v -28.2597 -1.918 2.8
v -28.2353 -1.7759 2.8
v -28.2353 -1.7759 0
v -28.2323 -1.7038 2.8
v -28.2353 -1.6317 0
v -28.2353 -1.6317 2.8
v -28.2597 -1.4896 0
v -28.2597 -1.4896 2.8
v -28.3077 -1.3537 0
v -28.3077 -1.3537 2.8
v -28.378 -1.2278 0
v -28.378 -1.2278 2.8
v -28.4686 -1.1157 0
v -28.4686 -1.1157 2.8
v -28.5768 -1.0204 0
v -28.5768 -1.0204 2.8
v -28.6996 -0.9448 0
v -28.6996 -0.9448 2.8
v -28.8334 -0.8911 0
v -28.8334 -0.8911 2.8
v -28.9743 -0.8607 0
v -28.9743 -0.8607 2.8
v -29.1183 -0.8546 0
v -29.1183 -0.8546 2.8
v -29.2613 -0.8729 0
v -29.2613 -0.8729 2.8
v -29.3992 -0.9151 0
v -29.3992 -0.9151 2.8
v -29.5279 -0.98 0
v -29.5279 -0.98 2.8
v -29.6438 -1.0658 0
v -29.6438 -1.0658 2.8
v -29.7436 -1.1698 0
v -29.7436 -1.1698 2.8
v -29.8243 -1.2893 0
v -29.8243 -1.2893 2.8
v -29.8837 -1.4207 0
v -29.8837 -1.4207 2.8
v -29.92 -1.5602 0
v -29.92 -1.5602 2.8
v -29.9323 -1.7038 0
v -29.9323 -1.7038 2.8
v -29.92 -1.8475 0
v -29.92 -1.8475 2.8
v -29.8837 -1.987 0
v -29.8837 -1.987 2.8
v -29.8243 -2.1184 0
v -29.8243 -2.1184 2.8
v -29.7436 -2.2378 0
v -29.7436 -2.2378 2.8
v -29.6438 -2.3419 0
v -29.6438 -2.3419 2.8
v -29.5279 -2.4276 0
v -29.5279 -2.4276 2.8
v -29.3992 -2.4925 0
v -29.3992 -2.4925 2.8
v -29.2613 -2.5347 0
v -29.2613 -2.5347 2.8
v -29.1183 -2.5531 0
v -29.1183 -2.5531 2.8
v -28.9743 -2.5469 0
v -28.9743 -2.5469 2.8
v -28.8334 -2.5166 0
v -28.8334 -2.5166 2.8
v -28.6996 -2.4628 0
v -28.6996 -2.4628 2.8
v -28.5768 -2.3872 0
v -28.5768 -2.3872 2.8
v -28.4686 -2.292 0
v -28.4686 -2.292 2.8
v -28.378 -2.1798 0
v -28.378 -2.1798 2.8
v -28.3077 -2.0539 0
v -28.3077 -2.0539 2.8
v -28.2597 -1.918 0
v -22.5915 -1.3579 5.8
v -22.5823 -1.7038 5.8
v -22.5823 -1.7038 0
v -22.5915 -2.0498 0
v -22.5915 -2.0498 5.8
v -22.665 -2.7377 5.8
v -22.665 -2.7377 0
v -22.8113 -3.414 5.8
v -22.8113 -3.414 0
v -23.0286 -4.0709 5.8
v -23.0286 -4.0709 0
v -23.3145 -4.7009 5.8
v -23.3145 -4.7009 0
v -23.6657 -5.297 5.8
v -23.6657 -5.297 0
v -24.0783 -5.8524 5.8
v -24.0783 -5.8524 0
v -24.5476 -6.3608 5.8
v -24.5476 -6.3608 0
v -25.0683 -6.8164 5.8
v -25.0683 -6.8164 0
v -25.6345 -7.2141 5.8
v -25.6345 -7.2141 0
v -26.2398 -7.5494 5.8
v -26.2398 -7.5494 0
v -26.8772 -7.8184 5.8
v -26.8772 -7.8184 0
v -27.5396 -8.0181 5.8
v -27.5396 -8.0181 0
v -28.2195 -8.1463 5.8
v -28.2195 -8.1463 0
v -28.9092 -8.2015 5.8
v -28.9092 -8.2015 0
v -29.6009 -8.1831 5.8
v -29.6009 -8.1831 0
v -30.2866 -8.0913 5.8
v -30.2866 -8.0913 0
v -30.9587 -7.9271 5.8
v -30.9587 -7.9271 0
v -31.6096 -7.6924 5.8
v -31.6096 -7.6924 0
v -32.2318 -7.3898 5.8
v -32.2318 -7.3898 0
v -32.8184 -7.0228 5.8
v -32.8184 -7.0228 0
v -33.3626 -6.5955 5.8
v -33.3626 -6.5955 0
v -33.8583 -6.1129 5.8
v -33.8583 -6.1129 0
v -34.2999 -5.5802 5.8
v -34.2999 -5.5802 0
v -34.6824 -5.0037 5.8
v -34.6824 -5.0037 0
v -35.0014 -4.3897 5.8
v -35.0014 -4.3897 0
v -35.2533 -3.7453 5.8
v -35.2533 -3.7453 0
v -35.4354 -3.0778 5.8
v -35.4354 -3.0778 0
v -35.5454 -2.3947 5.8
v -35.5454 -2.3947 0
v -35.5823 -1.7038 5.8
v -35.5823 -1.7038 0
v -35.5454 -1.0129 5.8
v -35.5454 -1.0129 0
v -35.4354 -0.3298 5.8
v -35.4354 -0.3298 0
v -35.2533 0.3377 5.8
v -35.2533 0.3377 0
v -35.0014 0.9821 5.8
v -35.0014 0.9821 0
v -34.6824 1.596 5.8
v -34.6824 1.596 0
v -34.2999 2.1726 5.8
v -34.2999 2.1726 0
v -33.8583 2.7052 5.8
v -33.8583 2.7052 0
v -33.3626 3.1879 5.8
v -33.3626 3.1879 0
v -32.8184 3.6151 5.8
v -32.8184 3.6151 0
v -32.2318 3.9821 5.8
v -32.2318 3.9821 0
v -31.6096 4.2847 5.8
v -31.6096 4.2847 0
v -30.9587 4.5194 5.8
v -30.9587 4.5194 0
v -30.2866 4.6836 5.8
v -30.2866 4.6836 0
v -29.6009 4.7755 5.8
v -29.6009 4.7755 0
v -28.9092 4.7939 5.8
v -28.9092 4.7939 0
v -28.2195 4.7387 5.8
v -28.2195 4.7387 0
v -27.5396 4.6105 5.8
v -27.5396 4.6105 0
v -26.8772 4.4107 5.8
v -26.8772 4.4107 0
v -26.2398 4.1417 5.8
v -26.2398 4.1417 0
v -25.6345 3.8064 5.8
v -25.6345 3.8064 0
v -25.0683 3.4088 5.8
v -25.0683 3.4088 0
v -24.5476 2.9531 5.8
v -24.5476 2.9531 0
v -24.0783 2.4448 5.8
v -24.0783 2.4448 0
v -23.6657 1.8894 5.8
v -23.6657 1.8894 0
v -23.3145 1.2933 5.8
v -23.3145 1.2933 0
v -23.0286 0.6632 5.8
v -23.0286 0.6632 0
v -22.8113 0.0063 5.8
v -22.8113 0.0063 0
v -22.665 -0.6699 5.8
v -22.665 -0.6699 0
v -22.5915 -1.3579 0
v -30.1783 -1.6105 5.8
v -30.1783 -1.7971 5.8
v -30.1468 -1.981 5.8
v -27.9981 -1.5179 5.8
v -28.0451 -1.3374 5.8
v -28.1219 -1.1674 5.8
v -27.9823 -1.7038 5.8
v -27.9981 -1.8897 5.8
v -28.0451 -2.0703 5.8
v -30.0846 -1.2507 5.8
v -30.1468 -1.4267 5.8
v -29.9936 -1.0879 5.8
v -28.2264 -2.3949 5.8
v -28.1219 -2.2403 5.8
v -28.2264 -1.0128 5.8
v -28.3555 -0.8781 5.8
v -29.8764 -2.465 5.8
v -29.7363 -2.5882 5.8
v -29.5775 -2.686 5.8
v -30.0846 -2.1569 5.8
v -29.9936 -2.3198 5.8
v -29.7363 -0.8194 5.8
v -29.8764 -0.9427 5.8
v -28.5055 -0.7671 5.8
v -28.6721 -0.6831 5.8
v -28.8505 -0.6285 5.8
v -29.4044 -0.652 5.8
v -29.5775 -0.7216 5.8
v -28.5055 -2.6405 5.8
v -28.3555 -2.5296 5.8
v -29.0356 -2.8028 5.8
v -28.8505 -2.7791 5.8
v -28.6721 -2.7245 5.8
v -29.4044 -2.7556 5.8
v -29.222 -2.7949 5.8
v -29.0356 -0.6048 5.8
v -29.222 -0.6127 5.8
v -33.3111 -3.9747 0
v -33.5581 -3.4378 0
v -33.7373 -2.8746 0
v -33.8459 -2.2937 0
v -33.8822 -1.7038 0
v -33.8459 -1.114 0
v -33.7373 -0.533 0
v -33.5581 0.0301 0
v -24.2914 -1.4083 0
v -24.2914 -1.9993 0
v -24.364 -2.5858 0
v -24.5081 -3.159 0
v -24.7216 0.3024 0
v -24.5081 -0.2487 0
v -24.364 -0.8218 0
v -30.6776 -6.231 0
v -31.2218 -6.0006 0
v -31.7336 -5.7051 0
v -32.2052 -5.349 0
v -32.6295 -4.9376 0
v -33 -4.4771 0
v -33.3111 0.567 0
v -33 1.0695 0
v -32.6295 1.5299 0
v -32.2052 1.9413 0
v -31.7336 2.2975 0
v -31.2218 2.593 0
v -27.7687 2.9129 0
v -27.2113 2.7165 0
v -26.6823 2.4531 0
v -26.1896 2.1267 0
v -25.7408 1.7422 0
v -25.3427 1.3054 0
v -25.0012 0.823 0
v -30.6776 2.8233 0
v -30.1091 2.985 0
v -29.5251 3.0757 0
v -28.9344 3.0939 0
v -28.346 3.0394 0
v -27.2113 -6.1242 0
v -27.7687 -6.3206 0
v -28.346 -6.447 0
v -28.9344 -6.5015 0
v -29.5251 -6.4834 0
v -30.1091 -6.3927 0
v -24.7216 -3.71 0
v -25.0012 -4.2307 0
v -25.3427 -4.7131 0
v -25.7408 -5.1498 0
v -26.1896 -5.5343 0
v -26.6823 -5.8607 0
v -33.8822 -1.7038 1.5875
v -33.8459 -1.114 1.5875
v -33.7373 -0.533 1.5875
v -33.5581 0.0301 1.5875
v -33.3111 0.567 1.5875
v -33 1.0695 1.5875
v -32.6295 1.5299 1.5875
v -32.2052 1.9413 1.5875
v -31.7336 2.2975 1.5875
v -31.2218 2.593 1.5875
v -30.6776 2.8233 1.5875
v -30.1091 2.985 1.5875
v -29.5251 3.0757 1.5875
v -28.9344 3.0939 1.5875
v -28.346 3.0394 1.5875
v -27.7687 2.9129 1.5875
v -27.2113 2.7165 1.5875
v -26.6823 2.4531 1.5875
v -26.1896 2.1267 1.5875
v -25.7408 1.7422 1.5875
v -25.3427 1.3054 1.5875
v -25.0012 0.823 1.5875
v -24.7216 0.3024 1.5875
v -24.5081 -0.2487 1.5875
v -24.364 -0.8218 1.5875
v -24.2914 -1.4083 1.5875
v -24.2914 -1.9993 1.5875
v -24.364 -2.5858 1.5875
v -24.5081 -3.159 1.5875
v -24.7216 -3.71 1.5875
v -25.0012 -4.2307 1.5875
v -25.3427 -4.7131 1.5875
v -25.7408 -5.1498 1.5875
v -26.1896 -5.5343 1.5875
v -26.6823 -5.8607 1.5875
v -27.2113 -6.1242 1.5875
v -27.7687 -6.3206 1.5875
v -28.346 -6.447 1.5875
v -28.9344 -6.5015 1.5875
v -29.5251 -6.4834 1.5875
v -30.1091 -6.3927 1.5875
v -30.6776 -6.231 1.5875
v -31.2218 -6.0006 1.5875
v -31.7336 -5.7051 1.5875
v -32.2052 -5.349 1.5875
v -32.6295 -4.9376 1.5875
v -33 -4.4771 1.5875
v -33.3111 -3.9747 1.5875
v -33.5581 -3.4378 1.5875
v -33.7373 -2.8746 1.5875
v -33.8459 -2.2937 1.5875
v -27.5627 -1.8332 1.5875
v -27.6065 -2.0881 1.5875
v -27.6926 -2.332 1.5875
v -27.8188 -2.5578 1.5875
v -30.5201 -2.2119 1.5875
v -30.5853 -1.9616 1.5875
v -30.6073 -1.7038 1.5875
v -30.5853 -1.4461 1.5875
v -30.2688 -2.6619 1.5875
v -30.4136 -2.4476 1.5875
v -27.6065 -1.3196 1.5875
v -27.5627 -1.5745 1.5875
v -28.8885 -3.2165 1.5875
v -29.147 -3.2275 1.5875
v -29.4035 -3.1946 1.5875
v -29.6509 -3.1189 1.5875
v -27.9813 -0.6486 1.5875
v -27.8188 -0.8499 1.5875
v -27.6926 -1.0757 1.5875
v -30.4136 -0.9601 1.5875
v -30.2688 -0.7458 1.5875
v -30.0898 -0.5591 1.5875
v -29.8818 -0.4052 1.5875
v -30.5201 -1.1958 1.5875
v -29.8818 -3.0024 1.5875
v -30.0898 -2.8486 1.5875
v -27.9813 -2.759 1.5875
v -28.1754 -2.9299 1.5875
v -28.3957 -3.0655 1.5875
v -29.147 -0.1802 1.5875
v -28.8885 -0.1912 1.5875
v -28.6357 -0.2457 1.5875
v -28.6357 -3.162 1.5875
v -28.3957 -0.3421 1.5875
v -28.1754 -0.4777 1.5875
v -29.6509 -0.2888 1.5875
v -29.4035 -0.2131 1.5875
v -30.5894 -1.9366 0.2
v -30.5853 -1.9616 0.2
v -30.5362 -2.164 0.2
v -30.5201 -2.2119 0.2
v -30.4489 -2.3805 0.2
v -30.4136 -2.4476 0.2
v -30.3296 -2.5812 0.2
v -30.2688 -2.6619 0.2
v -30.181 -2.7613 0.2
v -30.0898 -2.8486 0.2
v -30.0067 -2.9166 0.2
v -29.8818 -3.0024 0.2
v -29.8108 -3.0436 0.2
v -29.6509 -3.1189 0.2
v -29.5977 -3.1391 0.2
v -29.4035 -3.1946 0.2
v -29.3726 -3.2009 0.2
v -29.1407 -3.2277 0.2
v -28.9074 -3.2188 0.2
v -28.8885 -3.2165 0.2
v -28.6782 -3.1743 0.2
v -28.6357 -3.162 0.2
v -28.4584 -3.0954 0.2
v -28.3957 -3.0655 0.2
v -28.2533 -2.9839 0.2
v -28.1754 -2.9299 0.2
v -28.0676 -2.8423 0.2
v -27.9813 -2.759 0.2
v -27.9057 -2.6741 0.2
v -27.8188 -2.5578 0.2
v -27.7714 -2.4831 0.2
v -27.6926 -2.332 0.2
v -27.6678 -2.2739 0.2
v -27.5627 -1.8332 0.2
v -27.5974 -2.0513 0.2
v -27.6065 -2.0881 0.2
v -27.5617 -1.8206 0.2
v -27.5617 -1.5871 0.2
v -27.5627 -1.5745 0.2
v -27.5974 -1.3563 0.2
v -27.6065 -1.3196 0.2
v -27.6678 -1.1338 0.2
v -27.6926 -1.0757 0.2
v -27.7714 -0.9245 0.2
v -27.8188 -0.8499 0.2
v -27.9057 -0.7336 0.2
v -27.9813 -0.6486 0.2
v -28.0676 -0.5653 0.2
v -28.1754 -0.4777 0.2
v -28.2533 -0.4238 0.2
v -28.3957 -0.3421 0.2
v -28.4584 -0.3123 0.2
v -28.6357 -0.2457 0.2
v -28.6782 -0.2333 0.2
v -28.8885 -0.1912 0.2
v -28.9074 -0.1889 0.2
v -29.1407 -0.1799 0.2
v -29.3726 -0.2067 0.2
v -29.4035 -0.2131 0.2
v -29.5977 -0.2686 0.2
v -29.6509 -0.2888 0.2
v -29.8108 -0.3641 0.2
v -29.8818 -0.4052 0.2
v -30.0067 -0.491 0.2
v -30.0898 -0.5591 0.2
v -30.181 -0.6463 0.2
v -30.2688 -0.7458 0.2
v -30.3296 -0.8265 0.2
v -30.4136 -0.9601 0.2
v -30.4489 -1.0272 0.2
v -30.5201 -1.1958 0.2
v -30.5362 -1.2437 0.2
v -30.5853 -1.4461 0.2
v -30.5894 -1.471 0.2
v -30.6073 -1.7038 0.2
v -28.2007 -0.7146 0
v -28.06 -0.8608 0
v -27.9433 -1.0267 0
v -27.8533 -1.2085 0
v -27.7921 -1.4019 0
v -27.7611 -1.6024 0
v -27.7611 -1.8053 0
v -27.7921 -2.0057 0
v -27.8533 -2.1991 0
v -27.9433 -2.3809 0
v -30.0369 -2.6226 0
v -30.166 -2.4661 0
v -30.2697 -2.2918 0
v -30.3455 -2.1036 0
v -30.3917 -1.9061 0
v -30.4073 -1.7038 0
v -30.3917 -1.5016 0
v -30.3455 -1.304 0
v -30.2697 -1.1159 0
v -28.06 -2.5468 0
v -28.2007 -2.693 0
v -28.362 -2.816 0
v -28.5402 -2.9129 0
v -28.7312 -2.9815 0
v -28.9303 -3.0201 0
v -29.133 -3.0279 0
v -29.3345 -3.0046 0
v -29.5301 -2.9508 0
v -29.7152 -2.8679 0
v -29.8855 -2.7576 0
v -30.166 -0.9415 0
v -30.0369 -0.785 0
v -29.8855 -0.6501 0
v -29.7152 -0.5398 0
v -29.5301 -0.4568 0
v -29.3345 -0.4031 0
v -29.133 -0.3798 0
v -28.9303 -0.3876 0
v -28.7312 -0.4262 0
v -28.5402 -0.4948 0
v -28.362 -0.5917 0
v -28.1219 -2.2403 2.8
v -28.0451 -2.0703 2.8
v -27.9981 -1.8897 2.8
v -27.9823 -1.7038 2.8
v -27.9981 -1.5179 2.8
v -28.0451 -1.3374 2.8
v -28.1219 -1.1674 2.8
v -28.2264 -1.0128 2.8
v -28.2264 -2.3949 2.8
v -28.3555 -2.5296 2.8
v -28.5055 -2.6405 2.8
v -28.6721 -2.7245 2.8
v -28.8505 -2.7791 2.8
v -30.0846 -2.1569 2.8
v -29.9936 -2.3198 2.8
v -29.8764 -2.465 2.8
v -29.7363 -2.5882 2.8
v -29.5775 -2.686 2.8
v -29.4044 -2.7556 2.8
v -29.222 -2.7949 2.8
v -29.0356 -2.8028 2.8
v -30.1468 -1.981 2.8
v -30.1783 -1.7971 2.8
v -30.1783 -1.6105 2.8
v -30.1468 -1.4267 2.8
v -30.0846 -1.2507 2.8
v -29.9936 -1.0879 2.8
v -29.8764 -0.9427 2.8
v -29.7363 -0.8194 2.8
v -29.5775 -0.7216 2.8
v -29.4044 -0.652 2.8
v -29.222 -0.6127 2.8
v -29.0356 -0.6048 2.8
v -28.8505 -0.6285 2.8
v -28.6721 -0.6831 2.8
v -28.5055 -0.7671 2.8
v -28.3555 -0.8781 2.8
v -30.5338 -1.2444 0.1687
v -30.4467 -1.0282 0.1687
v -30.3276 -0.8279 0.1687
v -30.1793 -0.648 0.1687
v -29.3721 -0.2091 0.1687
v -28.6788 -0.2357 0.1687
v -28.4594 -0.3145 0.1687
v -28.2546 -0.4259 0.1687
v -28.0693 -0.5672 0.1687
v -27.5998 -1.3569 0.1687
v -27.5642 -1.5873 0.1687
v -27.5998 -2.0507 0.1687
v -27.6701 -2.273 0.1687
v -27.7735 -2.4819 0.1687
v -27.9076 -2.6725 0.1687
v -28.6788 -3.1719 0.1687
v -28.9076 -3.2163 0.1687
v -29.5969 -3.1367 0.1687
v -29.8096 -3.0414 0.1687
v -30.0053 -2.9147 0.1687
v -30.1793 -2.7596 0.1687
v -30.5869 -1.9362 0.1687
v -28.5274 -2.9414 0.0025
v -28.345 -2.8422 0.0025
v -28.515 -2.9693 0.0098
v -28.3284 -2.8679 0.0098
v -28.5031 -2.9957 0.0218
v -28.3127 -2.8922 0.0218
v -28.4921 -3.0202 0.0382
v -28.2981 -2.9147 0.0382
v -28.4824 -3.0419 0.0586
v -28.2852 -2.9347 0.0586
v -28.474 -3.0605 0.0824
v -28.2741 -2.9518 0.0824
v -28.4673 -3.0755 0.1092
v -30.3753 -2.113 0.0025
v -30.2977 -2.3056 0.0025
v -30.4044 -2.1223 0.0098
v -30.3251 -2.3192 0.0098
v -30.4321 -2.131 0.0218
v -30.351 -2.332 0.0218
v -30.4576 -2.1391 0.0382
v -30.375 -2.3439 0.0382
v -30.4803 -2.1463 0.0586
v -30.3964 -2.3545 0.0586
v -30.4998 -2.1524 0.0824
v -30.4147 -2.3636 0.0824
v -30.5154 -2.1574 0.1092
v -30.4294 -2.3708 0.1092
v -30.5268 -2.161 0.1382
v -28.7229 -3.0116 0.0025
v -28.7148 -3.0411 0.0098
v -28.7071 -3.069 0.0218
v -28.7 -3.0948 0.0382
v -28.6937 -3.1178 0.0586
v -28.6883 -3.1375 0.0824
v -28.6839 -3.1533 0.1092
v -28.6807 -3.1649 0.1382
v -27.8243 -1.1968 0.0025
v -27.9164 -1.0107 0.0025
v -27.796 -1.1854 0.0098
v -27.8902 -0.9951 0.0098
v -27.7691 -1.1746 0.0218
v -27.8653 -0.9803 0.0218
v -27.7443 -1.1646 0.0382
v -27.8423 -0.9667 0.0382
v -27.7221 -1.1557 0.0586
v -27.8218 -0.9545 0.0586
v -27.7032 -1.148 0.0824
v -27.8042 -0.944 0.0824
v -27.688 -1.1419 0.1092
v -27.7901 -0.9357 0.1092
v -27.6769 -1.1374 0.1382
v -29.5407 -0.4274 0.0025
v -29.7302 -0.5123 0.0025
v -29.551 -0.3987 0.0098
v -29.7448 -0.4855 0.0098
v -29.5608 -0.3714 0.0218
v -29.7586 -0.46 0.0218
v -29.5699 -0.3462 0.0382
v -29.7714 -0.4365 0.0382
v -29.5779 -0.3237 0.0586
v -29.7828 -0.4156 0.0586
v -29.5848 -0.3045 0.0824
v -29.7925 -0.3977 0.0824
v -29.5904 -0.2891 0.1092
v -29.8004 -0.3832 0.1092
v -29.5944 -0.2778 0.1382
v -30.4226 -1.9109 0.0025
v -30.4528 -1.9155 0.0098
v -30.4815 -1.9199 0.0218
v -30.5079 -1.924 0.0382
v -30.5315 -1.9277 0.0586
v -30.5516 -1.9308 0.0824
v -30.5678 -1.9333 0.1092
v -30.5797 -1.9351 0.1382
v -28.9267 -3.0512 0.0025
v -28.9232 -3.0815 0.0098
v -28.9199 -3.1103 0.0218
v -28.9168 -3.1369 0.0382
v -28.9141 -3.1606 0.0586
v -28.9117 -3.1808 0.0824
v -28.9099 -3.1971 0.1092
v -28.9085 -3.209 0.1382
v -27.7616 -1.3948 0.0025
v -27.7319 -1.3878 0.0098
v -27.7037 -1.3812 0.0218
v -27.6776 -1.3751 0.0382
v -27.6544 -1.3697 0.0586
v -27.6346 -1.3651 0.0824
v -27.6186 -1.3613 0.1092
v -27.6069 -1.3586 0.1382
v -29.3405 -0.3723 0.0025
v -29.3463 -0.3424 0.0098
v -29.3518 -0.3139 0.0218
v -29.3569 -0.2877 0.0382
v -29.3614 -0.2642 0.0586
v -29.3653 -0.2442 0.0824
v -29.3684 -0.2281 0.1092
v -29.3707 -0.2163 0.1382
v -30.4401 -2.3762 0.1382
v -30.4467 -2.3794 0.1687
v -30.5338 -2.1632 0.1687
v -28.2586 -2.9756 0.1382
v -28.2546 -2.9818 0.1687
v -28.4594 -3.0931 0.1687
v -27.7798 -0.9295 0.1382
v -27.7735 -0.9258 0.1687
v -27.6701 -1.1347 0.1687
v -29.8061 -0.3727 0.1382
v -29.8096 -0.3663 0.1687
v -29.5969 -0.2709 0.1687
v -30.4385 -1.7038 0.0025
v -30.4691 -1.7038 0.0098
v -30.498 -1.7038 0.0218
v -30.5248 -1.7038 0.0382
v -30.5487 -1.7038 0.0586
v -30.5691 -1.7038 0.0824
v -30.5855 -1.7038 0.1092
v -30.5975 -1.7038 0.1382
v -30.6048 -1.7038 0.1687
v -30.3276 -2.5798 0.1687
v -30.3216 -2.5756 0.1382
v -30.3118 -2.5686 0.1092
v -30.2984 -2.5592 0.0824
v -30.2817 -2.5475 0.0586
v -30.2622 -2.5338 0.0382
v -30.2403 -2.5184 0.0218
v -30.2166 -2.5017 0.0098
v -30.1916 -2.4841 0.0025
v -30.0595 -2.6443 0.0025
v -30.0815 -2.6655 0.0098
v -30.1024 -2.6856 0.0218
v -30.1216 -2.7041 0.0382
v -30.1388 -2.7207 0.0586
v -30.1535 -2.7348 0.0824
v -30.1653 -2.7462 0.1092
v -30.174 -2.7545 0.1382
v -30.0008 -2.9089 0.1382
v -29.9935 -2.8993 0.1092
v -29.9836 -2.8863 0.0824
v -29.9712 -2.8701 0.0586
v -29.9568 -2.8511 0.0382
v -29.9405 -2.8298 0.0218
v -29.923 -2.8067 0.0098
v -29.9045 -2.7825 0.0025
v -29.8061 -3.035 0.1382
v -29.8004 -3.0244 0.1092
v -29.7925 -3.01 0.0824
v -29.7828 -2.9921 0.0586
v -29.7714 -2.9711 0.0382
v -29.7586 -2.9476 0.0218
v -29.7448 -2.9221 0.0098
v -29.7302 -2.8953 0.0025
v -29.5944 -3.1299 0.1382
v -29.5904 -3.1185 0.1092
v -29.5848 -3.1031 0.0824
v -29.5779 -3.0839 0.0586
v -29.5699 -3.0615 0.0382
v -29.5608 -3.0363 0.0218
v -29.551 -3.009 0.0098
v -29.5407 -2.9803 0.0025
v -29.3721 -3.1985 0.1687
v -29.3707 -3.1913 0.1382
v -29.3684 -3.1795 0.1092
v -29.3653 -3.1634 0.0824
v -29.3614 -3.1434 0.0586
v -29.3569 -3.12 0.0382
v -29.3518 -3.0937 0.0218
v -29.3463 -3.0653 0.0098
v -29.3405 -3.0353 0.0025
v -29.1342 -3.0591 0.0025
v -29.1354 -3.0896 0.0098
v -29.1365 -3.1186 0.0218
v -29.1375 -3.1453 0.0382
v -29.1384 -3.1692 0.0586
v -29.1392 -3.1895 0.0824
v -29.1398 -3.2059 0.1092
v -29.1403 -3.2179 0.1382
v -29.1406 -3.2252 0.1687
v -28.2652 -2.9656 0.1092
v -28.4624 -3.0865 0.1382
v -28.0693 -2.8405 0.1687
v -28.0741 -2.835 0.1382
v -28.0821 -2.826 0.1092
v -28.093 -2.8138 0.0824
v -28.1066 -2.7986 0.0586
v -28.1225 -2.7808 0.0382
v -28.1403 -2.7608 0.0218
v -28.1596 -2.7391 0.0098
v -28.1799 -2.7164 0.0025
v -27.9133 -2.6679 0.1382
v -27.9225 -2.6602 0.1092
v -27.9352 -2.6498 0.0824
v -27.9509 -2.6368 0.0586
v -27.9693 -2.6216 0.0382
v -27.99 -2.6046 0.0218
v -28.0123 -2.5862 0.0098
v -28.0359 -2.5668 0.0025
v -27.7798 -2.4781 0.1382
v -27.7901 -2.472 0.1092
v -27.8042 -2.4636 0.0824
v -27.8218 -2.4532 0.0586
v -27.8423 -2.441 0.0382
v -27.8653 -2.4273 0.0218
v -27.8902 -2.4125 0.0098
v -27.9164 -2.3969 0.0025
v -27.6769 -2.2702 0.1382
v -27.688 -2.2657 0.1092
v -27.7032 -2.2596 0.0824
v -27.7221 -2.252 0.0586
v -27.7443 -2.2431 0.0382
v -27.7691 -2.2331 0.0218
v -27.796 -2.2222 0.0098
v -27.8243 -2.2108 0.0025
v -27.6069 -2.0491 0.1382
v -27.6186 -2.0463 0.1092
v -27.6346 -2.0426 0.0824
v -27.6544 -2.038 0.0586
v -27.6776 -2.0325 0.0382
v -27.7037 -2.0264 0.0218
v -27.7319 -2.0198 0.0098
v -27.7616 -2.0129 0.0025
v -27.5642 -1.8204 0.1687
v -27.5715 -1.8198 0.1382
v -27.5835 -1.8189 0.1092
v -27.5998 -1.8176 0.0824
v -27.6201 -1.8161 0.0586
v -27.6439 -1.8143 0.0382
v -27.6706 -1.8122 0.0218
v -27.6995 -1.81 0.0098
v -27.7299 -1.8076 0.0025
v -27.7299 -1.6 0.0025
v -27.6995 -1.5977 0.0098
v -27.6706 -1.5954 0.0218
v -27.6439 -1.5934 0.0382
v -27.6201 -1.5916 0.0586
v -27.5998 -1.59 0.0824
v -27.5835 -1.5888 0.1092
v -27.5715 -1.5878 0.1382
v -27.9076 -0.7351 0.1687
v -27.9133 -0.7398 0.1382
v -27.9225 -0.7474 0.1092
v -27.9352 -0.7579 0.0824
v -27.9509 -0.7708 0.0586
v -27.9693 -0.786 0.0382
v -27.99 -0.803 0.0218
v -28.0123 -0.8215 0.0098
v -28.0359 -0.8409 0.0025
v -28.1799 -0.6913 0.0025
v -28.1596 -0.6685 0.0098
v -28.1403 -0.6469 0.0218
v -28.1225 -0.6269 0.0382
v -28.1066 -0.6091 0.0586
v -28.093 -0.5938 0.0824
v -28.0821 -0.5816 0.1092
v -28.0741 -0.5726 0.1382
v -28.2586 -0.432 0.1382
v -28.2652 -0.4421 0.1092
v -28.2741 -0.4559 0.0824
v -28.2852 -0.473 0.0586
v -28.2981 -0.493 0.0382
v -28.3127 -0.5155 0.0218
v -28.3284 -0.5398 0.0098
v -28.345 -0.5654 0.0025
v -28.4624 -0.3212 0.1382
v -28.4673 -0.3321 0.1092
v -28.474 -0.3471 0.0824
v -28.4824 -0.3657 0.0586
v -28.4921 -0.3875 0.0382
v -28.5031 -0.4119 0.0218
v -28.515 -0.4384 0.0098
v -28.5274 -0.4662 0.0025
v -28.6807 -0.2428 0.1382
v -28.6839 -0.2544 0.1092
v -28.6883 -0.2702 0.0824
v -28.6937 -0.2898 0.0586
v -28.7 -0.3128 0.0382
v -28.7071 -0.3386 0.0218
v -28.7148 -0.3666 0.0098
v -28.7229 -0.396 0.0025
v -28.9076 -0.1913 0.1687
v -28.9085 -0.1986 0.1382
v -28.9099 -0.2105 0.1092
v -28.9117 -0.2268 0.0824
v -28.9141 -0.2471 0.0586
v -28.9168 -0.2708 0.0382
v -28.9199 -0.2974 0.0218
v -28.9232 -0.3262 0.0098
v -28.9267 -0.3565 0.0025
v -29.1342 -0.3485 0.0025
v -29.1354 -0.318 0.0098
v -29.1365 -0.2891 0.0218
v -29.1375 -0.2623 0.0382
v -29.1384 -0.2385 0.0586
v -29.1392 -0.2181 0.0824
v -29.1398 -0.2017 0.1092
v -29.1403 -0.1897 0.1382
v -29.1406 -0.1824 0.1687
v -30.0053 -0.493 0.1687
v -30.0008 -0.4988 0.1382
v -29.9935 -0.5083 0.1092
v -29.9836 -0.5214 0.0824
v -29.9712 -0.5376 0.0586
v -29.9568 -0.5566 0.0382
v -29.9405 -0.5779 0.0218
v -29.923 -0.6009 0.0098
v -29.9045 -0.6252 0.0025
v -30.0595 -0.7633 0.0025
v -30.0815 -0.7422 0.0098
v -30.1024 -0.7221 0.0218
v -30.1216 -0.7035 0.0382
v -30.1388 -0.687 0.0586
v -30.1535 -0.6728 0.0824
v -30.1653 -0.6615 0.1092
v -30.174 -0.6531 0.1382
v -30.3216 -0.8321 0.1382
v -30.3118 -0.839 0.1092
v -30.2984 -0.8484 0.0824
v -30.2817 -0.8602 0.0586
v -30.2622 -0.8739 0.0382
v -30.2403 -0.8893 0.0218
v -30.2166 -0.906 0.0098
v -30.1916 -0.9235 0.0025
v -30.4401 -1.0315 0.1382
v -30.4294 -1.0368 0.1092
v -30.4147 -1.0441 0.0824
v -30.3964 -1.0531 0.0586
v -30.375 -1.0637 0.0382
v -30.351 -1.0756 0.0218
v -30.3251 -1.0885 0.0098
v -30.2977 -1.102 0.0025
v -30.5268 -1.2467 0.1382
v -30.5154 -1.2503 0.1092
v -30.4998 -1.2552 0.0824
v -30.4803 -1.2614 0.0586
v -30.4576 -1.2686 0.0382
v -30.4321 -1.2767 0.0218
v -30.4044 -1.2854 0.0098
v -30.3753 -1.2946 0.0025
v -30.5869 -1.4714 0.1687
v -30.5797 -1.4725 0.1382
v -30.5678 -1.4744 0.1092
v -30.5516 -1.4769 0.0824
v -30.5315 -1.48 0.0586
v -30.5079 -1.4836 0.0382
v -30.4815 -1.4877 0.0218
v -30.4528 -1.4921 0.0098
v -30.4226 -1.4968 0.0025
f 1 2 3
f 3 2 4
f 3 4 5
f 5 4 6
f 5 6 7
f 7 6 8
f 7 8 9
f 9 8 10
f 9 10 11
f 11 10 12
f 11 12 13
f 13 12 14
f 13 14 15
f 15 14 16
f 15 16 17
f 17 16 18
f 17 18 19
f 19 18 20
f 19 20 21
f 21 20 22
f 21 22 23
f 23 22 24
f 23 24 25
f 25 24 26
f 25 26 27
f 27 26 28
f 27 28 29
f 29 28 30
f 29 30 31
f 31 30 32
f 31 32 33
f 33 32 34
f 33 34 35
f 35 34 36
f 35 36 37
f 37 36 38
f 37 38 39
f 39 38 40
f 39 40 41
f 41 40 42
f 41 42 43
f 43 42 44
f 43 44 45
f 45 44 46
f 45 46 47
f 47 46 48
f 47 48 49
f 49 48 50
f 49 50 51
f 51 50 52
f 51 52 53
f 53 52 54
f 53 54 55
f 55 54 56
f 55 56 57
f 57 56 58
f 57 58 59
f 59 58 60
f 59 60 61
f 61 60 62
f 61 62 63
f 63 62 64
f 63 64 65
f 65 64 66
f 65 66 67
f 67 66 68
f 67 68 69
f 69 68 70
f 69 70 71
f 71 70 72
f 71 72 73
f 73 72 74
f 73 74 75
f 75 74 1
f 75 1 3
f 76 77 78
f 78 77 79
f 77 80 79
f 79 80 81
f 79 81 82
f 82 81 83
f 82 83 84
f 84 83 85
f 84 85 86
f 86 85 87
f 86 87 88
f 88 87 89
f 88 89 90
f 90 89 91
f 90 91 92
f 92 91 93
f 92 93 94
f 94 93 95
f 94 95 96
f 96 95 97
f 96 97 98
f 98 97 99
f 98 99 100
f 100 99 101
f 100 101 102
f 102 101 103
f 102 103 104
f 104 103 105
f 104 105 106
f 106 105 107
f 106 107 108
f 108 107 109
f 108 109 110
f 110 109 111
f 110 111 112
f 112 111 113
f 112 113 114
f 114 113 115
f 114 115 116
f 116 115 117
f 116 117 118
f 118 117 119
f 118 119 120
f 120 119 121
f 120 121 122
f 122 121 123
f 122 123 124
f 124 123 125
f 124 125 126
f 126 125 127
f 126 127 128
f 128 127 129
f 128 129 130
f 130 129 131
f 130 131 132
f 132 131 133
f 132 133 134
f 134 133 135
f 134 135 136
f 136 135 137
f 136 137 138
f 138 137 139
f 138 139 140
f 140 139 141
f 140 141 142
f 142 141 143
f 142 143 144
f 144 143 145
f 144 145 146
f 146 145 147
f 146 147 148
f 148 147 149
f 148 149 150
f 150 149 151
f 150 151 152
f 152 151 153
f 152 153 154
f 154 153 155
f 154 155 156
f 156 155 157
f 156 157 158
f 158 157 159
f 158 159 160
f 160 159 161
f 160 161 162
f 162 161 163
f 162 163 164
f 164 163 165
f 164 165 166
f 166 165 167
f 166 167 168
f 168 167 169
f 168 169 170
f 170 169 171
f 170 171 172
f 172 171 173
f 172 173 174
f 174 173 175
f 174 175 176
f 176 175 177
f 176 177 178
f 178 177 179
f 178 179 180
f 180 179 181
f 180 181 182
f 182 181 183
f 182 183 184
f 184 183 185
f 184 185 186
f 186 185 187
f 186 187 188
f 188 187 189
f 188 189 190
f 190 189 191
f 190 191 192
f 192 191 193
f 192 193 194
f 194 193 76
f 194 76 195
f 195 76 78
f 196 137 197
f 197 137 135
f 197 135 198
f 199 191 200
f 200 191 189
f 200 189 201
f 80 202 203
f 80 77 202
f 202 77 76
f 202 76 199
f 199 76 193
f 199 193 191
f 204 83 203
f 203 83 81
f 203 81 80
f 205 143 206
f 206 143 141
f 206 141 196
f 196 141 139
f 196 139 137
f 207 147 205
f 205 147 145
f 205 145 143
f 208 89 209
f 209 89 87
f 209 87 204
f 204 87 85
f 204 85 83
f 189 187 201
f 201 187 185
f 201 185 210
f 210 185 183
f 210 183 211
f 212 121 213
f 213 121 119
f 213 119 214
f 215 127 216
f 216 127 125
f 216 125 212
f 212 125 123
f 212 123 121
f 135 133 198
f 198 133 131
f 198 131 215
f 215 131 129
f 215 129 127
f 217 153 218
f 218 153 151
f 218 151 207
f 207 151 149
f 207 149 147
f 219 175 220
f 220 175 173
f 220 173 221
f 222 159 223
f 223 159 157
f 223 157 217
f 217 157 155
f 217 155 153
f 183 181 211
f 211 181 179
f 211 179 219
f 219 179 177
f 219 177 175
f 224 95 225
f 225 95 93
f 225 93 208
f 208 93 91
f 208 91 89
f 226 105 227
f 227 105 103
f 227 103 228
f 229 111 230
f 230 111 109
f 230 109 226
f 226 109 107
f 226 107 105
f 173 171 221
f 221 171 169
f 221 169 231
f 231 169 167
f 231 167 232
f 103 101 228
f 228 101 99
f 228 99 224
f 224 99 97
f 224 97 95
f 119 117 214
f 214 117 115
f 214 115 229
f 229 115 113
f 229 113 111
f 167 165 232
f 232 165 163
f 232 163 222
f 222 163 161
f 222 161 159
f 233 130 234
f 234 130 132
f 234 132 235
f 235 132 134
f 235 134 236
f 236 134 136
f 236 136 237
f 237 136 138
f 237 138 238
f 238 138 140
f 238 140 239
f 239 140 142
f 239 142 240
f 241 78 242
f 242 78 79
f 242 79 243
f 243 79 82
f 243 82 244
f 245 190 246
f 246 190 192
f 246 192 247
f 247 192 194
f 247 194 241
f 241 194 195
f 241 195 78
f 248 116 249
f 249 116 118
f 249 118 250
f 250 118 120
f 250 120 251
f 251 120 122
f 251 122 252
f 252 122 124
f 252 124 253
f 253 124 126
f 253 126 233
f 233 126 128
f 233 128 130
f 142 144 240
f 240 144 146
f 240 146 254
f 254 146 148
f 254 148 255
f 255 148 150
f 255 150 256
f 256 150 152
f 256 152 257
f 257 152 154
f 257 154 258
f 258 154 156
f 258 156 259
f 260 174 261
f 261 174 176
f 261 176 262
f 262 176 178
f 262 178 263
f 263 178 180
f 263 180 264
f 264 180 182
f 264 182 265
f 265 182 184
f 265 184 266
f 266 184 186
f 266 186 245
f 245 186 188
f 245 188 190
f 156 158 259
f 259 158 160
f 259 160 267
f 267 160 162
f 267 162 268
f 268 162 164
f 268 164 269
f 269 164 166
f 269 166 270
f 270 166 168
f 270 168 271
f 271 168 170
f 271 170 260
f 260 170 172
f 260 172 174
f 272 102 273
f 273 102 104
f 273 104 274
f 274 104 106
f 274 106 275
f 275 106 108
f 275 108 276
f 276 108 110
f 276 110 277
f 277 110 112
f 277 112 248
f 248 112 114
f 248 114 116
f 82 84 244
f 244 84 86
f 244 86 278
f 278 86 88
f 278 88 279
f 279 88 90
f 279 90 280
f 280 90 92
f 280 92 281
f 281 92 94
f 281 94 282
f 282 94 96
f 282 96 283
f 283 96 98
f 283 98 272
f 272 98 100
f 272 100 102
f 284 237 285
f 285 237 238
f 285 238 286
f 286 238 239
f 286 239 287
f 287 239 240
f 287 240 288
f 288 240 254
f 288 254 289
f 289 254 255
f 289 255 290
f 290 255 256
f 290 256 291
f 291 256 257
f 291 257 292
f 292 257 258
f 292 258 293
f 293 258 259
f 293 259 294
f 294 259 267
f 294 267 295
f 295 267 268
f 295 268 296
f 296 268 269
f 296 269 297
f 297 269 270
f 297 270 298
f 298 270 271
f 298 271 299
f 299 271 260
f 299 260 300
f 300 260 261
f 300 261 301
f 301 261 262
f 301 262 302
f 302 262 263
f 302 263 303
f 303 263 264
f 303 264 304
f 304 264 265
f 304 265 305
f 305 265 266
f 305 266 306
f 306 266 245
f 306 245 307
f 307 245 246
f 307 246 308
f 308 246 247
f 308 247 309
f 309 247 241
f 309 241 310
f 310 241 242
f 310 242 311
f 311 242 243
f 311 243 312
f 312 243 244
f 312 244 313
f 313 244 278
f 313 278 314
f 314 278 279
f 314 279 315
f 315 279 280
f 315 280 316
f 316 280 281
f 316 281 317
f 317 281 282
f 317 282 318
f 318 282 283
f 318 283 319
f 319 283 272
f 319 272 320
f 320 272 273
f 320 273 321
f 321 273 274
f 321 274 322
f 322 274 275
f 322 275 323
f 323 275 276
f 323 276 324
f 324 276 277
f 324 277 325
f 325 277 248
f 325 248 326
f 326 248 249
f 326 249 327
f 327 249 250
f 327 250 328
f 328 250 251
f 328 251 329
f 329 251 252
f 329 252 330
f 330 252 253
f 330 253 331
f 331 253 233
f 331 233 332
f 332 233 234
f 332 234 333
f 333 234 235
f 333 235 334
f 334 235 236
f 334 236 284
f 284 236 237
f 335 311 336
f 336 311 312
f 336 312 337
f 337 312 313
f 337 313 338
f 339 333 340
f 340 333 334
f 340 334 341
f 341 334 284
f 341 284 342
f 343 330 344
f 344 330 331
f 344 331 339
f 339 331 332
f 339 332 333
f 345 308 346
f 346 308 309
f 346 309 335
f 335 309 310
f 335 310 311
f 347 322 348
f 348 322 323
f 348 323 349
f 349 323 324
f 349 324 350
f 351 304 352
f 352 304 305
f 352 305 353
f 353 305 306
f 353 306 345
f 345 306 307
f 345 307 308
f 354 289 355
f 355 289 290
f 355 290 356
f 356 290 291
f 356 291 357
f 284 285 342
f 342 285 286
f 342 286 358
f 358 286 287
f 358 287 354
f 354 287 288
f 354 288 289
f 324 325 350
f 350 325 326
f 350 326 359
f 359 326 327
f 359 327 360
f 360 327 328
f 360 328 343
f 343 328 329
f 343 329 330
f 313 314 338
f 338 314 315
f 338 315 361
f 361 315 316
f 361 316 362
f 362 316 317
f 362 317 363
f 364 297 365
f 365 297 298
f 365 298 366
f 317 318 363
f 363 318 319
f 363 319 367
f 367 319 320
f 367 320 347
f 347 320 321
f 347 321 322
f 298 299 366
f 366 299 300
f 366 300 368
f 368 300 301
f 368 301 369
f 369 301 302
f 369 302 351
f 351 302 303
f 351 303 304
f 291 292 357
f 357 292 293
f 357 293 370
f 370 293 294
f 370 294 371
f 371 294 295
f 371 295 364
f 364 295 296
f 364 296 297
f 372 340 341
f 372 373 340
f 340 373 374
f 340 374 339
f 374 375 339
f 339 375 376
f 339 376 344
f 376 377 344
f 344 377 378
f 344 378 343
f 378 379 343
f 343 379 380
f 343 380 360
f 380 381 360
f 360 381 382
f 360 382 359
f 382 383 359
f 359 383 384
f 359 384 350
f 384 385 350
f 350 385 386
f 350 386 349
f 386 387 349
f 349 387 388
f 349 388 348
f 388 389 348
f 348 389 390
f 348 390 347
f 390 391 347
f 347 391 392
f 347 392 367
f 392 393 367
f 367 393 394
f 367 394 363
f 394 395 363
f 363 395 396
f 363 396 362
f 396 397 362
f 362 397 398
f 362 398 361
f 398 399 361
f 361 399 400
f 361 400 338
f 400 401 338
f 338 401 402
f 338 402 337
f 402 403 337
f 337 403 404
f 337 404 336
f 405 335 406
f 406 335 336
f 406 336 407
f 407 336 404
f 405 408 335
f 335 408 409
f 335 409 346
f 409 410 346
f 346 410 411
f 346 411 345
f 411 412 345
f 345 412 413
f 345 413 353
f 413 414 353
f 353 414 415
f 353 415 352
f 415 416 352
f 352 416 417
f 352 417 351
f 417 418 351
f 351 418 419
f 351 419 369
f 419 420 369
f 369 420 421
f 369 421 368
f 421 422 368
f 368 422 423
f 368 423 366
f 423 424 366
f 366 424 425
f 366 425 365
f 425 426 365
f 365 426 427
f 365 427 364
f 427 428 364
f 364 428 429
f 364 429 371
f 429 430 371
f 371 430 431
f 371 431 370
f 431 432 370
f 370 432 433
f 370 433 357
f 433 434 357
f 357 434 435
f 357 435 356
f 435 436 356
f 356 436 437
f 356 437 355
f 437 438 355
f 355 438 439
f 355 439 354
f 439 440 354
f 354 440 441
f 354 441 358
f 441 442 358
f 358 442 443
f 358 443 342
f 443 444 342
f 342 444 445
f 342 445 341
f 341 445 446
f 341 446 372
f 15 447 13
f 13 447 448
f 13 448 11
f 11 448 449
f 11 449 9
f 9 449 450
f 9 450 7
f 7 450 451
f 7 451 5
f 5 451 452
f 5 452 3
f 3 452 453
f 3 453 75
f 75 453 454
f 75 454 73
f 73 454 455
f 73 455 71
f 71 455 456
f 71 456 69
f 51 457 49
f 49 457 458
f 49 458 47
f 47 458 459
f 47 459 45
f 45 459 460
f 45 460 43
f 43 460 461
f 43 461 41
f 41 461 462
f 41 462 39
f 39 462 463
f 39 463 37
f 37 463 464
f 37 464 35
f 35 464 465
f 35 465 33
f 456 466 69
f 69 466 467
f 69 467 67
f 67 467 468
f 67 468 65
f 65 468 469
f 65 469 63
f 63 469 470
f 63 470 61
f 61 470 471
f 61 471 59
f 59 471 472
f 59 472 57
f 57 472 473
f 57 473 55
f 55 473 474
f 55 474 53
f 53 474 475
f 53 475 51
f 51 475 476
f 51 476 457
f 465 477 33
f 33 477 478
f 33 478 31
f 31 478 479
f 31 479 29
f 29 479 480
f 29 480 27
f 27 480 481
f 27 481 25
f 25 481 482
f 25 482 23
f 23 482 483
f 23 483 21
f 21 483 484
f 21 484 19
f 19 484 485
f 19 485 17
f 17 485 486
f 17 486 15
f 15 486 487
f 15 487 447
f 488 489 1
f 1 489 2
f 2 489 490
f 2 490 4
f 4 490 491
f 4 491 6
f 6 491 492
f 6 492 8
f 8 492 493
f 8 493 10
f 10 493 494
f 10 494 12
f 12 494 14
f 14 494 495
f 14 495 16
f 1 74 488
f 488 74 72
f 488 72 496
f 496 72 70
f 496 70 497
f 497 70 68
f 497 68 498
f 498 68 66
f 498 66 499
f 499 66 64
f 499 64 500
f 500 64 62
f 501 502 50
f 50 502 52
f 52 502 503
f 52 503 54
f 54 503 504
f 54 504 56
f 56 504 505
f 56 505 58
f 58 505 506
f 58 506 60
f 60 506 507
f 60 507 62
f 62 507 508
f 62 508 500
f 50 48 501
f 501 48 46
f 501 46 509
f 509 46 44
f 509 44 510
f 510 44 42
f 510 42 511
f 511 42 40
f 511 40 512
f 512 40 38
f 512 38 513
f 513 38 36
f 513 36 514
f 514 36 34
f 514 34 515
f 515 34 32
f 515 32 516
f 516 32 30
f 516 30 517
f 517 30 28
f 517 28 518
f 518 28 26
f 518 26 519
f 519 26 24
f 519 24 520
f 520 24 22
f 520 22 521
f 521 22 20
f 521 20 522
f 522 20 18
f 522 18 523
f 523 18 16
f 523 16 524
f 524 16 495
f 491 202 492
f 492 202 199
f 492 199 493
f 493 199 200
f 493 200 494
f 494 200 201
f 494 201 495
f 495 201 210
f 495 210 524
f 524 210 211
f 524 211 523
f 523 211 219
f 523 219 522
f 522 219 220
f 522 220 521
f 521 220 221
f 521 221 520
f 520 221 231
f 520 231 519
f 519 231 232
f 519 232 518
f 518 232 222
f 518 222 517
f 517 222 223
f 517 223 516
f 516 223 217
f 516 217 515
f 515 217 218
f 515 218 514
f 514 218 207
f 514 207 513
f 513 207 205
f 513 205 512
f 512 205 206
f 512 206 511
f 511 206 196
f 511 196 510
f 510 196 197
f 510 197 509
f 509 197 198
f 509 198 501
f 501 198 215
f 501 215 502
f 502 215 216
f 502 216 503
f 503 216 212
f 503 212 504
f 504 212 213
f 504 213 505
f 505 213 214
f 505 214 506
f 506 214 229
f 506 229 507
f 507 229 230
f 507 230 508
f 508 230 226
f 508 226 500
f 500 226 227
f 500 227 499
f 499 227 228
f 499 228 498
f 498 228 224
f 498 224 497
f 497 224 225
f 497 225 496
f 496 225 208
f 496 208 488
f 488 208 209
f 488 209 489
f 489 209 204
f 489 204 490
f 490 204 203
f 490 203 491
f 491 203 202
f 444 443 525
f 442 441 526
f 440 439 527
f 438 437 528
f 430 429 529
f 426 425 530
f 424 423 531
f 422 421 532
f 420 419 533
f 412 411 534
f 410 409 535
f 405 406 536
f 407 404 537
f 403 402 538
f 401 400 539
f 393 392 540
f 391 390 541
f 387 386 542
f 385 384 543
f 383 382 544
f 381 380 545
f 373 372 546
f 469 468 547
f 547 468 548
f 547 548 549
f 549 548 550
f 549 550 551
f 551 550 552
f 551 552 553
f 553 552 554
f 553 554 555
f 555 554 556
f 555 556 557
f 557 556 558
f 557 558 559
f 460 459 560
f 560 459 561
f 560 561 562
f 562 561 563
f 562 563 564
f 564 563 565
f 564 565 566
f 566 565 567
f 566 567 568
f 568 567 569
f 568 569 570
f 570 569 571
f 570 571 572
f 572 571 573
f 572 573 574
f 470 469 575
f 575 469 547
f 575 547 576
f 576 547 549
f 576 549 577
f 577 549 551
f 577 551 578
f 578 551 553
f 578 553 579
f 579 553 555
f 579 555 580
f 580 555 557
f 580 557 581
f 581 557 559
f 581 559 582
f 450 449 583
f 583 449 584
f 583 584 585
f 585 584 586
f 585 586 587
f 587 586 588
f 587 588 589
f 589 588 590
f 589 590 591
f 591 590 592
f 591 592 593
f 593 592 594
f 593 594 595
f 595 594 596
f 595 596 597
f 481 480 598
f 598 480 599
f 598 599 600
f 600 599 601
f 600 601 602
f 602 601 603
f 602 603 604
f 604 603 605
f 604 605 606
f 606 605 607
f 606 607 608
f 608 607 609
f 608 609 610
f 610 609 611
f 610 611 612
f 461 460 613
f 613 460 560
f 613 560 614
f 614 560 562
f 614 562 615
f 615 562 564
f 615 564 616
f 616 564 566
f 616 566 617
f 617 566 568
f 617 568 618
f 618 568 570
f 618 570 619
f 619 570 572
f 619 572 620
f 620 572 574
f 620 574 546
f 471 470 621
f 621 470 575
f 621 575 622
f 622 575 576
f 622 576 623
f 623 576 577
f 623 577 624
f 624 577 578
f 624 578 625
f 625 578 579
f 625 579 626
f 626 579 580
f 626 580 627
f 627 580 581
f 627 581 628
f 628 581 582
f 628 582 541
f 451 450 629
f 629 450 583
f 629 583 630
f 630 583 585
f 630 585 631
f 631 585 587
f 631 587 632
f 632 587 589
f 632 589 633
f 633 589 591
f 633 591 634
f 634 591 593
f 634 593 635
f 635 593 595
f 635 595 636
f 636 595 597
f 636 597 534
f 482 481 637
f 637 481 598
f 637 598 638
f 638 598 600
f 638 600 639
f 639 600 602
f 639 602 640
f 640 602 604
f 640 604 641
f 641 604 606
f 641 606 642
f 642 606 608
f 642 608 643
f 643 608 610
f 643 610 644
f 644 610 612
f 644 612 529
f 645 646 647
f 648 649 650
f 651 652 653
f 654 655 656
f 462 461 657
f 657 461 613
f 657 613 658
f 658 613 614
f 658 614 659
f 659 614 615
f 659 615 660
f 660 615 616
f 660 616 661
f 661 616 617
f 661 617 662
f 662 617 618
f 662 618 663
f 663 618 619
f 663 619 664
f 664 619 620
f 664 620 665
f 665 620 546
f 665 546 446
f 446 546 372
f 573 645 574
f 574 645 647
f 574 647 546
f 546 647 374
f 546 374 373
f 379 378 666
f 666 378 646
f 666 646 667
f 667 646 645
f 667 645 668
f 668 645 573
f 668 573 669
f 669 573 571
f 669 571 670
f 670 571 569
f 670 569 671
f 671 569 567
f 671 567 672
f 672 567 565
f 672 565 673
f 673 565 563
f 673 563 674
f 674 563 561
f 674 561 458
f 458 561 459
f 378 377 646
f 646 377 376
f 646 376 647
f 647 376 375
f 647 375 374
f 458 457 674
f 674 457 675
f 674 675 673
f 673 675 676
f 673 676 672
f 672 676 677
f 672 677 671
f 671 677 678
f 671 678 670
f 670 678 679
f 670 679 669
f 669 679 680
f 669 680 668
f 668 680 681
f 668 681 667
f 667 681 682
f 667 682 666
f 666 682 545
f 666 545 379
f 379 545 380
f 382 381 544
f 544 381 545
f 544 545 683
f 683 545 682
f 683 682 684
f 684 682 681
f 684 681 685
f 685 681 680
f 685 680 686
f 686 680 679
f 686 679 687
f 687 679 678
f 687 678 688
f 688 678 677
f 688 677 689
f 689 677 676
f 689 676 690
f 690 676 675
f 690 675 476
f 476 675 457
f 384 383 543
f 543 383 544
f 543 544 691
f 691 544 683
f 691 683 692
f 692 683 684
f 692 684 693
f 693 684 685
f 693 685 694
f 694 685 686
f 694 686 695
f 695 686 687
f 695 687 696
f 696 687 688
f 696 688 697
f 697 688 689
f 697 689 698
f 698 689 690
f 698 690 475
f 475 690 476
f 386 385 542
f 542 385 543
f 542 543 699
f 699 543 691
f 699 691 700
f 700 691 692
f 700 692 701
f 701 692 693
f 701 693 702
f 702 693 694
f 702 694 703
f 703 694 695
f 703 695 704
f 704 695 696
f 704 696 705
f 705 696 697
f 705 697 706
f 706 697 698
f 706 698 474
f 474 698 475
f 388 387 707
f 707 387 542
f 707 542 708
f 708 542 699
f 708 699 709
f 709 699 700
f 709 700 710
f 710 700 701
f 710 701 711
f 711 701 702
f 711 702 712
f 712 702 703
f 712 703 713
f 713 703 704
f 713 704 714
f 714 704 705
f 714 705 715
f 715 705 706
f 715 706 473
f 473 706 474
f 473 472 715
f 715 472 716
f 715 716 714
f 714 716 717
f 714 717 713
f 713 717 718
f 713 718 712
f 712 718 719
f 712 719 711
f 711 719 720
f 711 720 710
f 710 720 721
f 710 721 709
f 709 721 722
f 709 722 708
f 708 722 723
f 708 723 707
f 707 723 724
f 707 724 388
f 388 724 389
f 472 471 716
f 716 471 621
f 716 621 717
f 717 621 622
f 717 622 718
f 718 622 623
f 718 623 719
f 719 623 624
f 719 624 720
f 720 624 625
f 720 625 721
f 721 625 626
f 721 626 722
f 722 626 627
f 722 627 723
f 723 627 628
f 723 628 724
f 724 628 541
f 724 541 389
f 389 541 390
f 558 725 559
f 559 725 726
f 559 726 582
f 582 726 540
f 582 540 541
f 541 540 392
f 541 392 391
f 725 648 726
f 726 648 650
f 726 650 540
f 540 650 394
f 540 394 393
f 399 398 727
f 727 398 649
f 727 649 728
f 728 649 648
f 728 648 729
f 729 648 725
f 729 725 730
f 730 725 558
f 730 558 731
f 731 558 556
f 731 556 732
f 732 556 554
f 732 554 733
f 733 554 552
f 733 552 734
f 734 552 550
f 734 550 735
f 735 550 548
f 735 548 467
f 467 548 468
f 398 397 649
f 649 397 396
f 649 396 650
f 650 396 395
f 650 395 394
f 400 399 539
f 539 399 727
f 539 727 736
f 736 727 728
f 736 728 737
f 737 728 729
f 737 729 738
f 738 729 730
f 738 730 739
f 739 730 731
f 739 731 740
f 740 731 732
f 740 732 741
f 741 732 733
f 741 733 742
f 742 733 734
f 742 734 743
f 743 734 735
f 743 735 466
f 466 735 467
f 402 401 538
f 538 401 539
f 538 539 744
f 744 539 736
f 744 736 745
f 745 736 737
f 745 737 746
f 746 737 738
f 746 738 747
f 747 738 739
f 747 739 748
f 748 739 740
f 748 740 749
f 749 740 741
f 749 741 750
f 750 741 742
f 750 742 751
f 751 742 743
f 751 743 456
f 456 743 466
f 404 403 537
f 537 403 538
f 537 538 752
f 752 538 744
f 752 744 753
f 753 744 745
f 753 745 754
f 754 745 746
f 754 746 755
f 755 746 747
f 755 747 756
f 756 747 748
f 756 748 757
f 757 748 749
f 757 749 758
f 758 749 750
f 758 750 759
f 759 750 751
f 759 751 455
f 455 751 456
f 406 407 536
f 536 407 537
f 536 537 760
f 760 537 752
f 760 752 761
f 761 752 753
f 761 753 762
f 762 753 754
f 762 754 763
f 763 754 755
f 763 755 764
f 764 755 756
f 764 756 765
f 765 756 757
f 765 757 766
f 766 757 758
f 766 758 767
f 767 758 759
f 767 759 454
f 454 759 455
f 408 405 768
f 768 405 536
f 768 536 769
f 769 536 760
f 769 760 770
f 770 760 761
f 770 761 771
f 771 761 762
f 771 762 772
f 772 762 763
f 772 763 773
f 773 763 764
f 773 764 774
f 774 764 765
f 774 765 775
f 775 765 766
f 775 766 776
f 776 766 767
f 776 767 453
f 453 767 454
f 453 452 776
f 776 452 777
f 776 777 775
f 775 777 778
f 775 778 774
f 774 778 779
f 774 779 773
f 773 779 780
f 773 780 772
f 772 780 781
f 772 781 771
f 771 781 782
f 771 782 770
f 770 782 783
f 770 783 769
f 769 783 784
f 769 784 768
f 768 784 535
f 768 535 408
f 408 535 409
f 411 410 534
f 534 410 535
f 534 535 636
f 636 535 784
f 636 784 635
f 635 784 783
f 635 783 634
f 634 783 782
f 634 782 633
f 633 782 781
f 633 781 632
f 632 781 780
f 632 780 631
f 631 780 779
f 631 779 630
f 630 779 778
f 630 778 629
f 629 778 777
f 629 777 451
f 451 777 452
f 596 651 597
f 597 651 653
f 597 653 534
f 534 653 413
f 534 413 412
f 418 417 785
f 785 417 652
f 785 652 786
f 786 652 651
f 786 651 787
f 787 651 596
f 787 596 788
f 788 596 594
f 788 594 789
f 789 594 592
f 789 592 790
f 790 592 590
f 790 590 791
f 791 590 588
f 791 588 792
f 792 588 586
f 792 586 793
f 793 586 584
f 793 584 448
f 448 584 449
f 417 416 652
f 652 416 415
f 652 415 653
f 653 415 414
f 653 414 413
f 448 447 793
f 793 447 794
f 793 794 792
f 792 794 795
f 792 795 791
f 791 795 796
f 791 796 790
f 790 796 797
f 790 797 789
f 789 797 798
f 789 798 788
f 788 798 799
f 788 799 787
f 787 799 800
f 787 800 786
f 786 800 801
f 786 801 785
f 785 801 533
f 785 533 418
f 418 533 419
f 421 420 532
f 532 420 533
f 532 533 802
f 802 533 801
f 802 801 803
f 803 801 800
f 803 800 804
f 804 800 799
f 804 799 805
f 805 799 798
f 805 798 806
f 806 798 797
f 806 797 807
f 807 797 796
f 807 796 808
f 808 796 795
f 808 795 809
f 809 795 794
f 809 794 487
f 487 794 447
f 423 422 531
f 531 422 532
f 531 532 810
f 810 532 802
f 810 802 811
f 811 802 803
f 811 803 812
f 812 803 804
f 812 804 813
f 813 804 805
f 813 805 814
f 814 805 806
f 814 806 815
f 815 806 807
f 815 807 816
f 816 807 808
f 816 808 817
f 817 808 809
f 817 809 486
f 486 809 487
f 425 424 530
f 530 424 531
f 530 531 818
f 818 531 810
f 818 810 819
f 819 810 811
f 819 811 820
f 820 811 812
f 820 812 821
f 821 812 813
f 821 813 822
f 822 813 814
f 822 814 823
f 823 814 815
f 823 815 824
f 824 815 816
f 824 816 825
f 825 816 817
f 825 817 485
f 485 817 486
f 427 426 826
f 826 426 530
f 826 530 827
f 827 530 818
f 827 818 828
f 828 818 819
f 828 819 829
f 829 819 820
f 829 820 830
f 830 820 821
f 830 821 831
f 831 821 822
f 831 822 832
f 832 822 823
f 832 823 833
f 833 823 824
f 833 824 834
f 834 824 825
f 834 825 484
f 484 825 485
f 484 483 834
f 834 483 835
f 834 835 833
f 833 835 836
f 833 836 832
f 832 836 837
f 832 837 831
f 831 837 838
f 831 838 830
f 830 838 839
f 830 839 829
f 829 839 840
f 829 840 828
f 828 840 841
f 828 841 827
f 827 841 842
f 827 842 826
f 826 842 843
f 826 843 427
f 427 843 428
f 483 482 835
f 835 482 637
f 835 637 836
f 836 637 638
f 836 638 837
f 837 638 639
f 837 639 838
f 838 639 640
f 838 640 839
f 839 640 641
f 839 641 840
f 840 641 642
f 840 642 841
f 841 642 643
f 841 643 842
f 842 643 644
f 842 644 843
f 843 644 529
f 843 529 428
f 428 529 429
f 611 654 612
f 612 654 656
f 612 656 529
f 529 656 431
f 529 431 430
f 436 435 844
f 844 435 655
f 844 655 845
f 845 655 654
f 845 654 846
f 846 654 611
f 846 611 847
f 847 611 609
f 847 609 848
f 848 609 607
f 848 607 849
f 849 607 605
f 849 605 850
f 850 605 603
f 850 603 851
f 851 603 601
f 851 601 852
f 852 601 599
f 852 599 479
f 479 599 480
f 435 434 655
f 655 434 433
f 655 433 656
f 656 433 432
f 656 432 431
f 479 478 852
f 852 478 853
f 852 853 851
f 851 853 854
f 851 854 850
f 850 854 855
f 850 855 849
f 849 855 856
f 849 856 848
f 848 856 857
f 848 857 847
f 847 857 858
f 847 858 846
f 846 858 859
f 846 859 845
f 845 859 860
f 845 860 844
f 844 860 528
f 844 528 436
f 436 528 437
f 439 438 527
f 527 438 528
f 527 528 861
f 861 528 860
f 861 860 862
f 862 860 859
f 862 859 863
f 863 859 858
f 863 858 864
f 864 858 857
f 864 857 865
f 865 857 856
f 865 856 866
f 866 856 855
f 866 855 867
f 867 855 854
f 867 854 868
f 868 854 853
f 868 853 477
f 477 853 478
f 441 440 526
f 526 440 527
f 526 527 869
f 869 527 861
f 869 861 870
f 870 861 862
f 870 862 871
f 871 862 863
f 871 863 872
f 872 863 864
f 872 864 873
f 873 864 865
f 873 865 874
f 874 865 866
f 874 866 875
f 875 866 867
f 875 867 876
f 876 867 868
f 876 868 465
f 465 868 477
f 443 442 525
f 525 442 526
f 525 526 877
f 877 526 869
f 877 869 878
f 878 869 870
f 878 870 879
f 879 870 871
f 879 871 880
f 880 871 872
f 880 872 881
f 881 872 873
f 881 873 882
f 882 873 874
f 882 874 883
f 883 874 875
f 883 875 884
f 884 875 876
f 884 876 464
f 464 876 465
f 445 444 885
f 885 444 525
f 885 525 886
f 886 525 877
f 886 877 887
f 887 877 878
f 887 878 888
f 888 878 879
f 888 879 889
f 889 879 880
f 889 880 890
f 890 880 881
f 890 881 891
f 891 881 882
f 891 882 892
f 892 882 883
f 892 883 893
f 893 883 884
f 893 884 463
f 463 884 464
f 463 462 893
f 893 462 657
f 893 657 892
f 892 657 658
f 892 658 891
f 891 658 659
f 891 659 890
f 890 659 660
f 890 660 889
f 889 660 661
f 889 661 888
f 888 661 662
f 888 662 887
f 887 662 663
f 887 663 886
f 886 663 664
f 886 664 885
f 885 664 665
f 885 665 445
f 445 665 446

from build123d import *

# Parameters (mm, degrees)
SKETCH1_R           = 6.5
BOSS_EXTRUDE1_DEPTH = 5.8
SKETCH2_R           = 4.8
CUT_EXTRUDE1_DEPTH  = 1.5875
SKETCH3_R           = 1
BOSS_EXTRUDE2_DEPTH = 1.5875
SKETCH4_R           = 1.525
BOSS_EXTRUDE3_DEPTH = 3
SKETCH5_R           = 0.85
CUT_EXTRUDE2_DEPTH  = 37.973494724
SKETCH6_R           = 1.1
CUT_EXTRUDE3_DEPTH  = 3
FILLET1_R           = 0.2


with BuildPart() as part:
    # Sketch1 → Boss-Extrude1 (new body)
    with BuildSketch(Plane.XY):
        with Locations((-29.082250471, -1.703826149)):
            Circle(SKETCH1_R)
    extrude(amount=BOSS_EXTRUDE1_DEPTH)

    # Sketch2 → Cut-Extrude1 (cut)
    with BuildSketch(Plane(origin=(0, 0, 0), x_dir=(-1, 0, 0), z_dir=(0, 0, -1))):
        with Locations((29.082250471, -1.703826149)):
            Circle(SKETCH2_R)
    extrude(amount=-CUT_EXTRUDE1_DEPTH, mode=Mode.SUBTRACT)

    # Sketch3 → Boss-Extrude2 (add)
    with BuildSketch(Plane(origin=(0, 0, 1.5875), x_dir=(-1, 0, 0), z_dir=(0, 0, -1))):
        with Locations((29.082250471, -1.703826149)):
            Circle(SKETCH3_R)
    extrude(amount=BOSS_EXTRUDE2_DEPTH)

    # Sketch4 → Boss-Extrude3 (add)
    with BuildSketch(Plane(origin=(0, 0, 0), x_dir=(-1, 0, 0), z_dir=(0, 0, -1))):
        with Locations((29.082250471, -1.703826149)):
            Circle(SKETCH4_R)
    extrude(amount=-BOSS_EXTRUDE3_DEPTH)

    # Sketch5 → Cut-Extrude2 (cut, through all)
    with BuildSketch(Plane(origin=(0, 0, 0), x_dir=(-1, 0, 0), z_dir=(0, 0, -1))):
        with Locations((29.082250471, -1.703826149)):
            Circle(SKETCH5_R)
    extrude(amount=-CUT_EXTRUDE2_DEPTH, mode=Mode.SUBTRACT)

    # Sketch6 → Cut-Extrude3 (cut)
    with BuildSketch(Plane.XY.offset(5.8)):
        with Locations((-29.082250471, -1.703826149)):
            Circle(SKETCH6_R)
    extrude(amount=-CUT_EXTRUDE3_DEPTH, mode=Mode.SUBTRACT)

    # Fillet1
    fillet1_edges = [part.edges().sort_by_distance(p)[0] for p in [
        (-27.557250471, -1.703826149, 0),
    ]]
    fillet(fillet1_edges, radius=FILLET1_R)


solid = part.part
